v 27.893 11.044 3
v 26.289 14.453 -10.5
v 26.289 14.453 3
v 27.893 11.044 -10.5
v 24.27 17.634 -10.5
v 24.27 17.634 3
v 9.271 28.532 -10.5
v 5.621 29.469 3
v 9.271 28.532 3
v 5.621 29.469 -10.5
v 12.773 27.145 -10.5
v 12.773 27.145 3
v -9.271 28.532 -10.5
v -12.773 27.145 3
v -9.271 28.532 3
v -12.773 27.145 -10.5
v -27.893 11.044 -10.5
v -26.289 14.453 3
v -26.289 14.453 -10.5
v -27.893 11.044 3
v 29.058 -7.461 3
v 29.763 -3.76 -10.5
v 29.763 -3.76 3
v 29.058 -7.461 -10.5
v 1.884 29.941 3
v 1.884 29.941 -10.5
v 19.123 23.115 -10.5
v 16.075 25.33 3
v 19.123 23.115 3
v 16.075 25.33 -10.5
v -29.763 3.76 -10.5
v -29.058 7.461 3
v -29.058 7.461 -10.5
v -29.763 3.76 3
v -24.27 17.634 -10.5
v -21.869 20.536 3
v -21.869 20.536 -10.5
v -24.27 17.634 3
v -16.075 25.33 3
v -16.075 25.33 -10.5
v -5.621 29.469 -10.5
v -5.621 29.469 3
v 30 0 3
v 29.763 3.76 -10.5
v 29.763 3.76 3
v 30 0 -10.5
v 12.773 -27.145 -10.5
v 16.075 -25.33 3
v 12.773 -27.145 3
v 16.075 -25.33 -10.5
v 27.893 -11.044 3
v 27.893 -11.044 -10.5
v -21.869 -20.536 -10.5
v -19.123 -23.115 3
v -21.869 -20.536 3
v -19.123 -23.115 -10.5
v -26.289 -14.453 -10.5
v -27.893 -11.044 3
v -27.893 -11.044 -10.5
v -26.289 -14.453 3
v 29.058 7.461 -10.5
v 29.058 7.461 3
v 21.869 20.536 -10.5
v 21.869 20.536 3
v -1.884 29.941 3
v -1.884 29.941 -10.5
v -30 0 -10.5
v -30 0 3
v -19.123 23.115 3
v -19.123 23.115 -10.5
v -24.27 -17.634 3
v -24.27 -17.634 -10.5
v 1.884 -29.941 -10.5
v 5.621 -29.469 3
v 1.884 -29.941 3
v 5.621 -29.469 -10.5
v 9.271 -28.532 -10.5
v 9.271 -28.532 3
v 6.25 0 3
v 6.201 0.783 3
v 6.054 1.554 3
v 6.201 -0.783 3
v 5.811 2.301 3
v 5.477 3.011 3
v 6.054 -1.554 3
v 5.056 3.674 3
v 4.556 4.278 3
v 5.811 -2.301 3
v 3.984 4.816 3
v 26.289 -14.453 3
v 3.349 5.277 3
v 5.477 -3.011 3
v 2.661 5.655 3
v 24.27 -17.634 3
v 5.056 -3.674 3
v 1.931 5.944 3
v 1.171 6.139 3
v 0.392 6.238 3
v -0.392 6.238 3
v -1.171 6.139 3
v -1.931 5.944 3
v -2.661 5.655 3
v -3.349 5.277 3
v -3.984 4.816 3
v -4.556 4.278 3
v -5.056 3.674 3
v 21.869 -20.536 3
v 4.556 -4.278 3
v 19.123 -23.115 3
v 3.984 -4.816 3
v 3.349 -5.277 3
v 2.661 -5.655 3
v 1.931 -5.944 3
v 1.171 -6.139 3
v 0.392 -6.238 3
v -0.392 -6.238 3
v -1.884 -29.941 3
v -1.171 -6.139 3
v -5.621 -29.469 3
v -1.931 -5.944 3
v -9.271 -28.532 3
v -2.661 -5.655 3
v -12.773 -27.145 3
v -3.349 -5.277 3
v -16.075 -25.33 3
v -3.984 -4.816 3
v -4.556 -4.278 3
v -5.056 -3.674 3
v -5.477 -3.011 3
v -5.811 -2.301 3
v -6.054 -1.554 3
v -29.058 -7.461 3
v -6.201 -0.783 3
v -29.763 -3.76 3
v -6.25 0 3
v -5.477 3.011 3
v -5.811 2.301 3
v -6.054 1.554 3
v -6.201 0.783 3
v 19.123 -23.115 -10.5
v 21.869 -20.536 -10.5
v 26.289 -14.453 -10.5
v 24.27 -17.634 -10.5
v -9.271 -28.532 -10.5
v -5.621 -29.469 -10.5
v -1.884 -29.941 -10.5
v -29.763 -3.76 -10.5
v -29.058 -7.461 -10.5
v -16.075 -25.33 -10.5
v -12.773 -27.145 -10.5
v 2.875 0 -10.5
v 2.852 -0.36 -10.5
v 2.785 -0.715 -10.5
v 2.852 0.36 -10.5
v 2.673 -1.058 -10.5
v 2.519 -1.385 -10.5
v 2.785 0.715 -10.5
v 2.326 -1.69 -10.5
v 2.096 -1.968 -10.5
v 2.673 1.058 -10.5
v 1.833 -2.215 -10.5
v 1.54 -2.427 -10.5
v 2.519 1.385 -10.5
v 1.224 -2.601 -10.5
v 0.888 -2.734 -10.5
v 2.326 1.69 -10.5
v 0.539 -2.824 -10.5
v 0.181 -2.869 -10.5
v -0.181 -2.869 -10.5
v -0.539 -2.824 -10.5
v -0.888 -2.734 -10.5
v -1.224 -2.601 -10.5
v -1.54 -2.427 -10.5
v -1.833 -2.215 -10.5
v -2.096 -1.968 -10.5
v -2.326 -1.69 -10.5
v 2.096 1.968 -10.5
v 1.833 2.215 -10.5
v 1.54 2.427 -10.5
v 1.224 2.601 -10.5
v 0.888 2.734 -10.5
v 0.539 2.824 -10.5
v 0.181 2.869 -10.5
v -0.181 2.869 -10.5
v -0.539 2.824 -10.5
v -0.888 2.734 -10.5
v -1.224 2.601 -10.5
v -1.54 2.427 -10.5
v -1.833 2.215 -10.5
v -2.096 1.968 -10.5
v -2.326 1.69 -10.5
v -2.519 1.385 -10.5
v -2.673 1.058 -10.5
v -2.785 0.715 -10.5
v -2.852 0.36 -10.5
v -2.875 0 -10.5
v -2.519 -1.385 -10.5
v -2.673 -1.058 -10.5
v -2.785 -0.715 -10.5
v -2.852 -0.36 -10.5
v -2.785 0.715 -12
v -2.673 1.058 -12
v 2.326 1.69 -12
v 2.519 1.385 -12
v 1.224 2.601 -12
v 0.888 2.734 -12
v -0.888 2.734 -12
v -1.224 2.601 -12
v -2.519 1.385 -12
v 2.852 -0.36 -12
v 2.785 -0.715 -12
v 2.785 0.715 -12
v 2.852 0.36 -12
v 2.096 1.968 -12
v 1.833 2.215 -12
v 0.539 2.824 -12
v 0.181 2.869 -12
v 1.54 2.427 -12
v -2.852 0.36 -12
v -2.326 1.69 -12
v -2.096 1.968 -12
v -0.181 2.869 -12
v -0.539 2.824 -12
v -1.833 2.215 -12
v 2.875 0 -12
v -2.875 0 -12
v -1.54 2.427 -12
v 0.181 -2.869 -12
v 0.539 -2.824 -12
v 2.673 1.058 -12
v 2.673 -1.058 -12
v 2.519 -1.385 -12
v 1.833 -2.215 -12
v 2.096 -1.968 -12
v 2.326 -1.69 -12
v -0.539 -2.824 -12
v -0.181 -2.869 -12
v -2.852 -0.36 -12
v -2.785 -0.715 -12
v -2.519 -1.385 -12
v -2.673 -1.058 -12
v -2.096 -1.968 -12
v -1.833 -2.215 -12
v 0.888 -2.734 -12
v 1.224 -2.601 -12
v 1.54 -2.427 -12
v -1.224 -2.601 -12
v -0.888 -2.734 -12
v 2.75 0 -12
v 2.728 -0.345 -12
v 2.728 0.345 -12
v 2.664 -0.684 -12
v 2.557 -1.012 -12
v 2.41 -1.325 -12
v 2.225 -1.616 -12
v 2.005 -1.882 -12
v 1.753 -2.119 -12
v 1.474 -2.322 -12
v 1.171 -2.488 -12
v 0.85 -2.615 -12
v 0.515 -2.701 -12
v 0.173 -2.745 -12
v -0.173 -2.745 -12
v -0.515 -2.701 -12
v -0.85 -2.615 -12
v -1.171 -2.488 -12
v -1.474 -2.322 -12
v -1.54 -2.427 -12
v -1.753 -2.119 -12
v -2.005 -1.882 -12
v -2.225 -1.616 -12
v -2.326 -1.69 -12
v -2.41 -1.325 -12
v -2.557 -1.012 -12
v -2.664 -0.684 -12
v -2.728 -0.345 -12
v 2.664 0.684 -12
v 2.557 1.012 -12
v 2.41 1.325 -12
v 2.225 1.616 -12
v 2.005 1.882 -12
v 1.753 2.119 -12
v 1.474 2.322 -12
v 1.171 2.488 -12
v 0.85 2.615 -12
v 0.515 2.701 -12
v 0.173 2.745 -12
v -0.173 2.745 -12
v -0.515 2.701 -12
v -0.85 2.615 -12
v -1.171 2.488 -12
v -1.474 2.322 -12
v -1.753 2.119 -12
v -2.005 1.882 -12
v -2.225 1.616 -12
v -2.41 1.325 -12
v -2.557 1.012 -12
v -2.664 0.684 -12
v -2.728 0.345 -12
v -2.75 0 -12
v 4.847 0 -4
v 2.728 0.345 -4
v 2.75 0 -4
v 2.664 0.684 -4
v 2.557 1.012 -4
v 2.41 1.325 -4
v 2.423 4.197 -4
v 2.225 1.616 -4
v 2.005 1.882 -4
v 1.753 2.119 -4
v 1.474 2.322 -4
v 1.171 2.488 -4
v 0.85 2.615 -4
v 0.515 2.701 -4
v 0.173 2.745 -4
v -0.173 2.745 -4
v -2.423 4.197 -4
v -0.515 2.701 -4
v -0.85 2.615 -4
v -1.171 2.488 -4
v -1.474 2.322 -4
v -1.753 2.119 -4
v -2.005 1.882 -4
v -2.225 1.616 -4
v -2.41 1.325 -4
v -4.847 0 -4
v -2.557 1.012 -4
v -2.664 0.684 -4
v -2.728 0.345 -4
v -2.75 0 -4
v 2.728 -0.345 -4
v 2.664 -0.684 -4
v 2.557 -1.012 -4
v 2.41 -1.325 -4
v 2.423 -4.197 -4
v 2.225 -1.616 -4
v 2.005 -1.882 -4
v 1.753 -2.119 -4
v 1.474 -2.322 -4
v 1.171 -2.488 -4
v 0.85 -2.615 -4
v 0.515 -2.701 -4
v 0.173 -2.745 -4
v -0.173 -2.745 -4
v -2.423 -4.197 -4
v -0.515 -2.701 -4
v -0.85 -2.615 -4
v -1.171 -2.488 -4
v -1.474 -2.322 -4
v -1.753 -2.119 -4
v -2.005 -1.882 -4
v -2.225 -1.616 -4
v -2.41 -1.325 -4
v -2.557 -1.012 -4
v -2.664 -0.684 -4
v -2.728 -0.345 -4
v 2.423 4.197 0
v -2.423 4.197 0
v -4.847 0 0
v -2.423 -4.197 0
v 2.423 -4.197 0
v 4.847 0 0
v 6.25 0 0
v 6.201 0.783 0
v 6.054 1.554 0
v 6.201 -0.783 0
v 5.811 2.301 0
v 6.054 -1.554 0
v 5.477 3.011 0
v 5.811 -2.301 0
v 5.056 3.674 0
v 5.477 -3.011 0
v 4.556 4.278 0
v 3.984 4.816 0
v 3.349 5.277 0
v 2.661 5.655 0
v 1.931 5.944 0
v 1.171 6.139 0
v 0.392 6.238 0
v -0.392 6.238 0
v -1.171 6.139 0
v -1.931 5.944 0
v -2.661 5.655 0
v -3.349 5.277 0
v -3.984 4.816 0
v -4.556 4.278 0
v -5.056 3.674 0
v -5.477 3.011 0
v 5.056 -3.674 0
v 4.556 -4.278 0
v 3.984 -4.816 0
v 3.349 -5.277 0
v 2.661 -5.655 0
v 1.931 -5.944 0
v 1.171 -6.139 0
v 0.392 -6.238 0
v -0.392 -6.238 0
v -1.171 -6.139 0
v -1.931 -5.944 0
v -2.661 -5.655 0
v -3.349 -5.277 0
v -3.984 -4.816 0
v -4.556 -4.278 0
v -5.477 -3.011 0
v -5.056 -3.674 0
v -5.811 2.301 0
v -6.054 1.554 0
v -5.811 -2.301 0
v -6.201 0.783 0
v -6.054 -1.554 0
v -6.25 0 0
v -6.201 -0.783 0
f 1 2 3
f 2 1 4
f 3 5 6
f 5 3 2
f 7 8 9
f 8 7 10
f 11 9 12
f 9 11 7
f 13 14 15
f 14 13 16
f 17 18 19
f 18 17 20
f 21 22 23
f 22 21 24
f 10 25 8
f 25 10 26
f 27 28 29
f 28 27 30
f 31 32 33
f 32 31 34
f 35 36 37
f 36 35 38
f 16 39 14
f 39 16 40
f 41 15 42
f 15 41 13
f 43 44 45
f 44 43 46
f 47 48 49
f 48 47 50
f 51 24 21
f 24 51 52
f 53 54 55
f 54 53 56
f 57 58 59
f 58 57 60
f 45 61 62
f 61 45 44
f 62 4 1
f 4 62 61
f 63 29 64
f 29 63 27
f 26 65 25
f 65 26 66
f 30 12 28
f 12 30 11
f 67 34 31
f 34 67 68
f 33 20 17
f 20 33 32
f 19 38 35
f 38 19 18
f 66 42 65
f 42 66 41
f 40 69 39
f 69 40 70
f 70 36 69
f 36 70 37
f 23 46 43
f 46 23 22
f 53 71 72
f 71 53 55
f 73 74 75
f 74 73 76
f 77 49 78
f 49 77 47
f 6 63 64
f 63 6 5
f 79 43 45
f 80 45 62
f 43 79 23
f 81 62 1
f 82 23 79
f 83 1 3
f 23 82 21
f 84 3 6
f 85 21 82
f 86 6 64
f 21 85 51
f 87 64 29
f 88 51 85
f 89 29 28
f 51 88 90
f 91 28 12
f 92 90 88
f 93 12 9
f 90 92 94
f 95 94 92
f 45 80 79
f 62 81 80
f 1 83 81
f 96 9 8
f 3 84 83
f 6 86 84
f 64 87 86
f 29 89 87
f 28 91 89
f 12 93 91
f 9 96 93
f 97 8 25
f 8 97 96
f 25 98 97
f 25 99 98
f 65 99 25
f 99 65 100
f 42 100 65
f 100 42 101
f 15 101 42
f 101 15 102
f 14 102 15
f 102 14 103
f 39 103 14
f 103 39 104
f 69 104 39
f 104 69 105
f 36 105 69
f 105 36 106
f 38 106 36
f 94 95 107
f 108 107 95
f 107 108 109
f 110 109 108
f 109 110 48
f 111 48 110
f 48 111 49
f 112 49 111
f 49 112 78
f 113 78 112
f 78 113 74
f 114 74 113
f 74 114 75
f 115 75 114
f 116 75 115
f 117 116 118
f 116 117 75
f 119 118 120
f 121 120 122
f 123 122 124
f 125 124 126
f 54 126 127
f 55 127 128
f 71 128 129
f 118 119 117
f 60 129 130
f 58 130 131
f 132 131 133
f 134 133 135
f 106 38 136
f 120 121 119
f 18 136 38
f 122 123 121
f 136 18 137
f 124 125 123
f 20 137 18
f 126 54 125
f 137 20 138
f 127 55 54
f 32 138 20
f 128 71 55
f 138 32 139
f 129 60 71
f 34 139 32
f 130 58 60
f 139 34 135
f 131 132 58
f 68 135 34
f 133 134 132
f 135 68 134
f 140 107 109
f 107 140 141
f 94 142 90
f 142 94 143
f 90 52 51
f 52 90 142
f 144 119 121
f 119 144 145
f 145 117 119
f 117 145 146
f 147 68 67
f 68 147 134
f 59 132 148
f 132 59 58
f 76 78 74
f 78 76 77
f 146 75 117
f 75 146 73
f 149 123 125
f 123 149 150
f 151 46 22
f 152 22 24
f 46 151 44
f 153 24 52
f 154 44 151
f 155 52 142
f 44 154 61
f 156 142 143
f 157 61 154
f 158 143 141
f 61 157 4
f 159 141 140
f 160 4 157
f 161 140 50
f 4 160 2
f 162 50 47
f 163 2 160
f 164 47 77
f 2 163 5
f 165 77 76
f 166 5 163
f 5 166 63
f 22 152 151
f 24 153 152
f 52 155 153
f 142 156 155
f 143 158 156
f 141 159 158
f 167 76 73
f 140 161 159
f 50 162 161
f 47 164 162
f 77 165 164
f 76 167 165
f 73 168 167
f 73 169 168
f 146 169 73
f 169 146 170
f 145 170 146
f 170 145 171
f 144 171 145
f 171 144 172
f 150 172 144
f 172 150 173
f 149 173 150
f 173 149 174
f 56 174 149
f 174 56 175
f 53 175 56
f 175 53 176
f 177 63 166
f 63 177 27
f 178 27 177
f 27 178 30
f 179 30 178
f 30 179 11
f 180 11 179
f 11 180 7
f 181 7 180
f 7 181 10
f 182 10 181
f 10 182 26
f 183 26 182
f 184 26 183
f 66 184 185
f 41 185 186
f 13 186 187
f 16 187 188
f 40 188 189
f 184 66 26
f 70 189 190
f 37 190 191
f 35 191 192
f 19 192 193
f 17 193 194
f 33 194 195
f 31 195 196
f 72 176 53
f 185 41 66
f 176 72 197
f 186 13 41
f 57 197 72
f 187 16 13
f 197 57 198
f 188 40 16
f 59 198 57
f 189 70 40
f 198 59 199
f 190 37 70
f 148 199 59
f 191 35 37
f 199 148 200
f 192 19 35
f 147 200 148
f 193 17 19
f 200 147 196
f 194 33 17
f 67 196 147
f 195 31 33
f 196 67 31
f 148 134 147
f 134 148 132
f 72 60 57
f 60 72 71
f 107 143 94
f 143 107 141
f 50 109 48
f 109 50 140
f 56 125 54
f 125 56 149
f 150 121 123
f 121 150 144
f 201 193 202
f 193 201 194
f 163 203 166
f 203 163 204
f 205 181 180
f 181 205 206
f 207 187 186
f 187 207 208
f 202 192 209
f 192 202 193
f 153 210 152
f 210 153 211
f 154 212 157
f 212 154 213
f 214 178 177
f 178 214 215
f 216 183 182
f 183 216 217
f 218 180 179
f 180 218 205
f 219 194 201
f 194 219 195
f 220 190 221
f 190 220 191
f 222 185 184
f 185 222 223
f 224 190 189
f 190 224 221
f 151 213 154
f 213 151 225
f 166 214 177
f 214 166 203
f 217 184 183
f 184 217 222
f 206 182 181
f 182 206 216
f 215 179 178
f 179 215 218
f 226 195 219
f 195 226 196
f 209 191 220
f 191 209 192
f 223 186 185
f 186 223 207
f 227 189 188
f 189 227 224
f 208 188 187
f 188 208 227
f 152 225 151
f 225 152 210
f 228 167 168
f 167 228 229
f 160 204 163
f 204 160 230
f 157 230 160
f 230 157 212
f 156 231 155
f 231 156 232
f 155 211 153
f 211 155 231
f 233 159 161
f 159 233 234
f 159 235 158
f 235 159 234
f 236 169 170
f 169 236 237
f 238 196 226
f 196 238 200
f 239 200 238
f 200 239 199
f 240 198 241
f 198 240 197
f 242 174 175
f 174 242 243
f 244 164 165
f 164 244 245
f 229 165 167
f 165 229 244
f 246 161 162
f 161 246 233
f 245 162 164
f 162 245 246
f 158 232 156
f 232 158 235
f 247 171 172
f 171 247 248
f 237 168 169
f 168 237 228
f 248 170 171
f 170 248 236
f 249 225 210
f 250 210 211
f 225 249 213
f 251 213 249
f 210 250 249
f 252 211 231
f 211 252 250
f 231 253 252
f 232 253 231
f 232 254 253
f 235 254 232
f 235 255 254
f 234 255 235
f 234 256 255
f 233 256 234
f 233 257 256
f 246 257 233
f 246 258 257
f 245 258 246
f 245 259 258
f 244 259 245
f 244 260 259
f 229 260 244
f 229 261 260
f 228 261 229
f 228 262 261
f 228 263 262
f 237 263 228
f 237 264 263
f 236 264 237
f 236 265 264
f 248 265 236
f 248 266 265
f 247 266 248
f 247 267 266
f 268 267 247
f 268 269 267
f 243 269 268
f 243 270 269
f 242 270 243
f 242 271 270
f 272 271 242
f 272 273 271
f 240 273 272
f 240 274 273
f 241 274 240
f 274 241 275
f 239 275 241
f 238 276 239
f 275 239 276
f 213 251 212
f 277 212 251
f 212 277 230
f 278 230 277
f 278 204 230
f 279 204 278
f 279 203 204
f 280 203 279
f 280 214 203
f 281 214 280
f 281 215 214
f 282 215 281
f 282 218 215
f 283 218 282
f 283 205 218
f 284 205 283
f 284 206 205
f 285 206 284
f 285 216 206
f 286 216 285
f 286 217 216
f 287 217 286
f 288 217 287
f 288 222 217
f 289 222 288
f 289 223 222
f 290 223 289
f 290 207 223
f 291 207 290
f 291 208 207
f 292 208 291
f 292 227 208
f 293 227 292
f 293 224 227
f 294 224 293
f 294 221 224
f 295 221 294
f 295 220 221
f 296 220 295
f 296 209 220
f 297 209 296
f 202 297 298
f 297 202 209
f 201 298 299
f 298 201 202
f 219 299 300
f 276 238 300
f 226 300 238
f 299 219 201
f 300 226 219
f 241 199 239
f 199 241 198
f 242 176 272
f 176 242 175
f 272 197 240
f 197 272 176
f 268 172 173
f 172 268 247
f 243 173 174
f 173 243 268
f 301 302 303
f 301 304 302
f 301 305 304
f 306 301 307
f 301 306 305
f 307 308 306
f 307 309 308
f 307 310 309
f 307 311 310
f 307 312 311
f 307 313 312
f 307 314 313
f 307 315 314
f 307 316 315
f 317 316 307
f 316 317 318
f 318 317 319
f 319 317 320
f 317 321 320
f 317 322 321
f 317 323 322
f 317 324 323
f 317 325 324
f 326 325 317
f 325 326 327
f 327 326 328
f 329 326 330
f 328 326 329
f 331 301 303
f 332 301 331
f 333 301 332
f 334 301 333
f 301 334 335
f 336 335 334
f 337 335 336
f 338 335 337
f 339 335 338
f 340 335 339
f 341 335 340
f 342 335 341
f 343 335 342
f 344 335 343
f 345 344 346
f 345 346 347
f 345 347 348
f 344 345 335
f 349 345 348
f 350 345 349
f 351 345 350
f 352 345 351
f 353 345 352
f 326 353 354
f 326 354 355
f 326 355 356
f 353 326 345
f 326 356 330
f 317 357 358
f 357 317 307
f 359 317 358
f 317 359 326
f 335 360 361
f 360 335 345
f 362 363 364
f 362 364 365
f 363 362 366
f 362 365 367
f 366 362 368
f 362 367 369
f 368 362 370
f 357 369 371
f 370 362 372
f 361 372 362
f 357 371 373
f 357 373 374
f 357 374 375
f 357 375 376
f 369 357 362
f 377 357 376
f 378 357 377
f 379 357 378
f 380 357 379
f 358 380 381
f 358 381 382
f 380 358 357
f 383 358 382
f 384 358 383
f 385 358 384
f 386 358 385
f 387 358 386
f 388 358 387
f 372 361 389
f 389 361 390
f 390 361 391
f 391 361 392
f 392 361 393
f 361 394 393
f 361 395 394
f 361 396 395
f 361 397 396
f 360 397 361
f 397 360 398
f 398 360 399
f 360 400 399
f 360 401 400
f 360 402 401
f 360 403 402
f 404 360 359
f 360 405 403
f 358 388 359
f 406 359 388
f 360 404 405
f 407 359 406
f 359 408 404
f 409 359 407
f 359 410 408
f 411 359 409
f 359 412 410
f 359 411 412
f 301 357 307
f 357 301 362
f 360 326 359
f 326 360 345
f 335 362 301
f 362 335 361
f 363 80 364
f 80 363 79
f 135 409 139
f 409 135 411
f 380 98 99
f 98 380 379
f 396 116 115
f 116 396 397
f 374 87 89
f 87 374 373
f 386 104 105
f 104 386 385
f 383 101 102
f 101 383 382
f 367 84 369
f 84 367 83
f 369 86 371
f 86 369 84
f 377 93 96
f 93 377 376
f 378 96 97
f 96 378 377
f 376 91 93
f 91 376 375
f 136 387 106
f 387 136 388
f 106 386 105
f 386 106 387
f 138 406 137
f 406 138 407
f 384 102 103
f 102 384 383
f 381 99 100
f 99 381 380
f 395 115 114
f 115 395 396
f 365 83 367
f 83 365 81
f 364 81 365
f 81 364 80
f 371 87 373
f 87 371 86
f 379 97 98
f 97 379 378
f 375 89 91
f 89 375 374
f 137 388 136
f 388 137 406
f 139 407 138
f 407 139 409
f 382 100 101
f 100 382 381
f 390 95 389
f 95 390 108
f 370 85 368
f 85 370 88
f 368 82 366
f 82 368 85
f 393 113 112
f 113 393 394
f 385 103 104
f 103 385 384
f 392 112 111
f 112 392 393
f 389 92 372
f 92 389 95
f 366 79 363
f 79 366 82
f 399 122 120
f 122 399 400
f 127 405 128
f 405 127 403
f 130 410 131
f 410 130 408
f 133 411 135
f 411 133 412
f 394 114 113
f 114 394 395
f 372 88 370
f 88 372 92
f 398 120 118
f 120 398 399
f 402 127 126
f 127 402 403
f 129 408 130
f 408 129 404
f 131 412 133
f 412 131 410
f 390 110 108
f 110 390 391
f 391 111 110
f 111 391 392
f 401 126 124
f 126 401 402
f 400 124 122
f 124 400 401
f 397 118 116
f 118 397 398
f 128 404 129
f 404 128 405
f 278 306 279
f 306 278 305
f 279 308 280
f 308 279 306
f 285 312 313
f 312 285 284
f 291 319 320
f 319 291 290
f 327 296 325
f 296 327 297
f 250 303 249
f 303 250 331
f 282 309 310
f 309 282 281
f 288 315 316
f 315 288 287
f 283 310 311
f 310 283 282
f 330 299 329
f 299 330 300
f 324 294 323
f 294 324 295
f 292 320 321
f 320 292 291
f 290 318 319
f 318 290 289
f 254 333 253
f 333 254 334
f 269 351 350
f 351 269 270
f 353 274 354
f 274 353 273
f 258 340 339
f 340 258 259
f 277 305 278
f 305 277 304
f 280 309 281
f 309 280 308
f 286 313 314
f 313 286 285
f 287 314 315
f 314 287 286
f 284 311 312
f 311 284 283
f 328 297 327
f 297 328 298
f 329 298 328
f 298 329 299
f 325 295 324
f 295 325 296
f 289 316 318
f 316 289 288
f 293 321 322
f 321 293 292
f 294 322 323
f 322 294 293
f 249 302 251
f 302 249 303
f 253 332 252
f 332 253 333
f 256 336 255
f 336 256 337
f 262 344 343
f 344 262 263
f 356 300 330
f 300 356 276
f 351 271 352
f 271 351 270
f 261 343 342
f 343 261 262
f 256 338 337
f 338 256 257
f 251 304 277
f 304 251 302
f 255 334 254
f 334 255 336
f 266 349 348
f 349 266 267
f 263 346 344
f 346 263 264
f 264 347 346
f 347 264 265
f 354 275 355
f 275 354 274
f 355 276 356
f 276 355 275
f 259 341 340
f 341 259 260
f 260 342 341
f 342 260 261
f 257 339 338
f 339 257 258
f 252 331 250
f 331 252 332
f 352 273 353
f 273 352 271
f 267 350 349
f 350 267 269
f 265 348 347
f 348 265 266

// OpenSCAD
$fn = 50;


difference() {
	union() {
		translate(v = [0, 0, -10.5000000000]) {
			cylinder(h = 13.5000000000, r = 30.0000000000);
		}
		#translate(v = [0, 0, -12.0000000000]) {
			cylinder(h = 12, r = 2.8750000000);
		}
	}
	union() {
		translate(v = [0, 0, 0]) {
			rotate(a = [0, 0, 0]) {
				difference() {
					union() {
						translate(v = [0, 0, -4]) {
							linear_extrude(height = 4) {
								polygon(points = [[4.8468000000, 0.0000000000], [2.4234000000, 4.1974519271], [-2.4234000000, 4.1974519271], [-4.8468000000, 0.0000000000], [-2.4234000000, -4.1974519271], [2.4234000000, -4.1974519271]]);
							}
						}
					}
					union();
				}
			}
		}
		#cylinder(h = 3, r = 6.2500000000);
		#translate(v = [0, 0, -100.0000000000]) {
			cylinder(h = 200, r = 2.7500000000);
		}
	}
}
